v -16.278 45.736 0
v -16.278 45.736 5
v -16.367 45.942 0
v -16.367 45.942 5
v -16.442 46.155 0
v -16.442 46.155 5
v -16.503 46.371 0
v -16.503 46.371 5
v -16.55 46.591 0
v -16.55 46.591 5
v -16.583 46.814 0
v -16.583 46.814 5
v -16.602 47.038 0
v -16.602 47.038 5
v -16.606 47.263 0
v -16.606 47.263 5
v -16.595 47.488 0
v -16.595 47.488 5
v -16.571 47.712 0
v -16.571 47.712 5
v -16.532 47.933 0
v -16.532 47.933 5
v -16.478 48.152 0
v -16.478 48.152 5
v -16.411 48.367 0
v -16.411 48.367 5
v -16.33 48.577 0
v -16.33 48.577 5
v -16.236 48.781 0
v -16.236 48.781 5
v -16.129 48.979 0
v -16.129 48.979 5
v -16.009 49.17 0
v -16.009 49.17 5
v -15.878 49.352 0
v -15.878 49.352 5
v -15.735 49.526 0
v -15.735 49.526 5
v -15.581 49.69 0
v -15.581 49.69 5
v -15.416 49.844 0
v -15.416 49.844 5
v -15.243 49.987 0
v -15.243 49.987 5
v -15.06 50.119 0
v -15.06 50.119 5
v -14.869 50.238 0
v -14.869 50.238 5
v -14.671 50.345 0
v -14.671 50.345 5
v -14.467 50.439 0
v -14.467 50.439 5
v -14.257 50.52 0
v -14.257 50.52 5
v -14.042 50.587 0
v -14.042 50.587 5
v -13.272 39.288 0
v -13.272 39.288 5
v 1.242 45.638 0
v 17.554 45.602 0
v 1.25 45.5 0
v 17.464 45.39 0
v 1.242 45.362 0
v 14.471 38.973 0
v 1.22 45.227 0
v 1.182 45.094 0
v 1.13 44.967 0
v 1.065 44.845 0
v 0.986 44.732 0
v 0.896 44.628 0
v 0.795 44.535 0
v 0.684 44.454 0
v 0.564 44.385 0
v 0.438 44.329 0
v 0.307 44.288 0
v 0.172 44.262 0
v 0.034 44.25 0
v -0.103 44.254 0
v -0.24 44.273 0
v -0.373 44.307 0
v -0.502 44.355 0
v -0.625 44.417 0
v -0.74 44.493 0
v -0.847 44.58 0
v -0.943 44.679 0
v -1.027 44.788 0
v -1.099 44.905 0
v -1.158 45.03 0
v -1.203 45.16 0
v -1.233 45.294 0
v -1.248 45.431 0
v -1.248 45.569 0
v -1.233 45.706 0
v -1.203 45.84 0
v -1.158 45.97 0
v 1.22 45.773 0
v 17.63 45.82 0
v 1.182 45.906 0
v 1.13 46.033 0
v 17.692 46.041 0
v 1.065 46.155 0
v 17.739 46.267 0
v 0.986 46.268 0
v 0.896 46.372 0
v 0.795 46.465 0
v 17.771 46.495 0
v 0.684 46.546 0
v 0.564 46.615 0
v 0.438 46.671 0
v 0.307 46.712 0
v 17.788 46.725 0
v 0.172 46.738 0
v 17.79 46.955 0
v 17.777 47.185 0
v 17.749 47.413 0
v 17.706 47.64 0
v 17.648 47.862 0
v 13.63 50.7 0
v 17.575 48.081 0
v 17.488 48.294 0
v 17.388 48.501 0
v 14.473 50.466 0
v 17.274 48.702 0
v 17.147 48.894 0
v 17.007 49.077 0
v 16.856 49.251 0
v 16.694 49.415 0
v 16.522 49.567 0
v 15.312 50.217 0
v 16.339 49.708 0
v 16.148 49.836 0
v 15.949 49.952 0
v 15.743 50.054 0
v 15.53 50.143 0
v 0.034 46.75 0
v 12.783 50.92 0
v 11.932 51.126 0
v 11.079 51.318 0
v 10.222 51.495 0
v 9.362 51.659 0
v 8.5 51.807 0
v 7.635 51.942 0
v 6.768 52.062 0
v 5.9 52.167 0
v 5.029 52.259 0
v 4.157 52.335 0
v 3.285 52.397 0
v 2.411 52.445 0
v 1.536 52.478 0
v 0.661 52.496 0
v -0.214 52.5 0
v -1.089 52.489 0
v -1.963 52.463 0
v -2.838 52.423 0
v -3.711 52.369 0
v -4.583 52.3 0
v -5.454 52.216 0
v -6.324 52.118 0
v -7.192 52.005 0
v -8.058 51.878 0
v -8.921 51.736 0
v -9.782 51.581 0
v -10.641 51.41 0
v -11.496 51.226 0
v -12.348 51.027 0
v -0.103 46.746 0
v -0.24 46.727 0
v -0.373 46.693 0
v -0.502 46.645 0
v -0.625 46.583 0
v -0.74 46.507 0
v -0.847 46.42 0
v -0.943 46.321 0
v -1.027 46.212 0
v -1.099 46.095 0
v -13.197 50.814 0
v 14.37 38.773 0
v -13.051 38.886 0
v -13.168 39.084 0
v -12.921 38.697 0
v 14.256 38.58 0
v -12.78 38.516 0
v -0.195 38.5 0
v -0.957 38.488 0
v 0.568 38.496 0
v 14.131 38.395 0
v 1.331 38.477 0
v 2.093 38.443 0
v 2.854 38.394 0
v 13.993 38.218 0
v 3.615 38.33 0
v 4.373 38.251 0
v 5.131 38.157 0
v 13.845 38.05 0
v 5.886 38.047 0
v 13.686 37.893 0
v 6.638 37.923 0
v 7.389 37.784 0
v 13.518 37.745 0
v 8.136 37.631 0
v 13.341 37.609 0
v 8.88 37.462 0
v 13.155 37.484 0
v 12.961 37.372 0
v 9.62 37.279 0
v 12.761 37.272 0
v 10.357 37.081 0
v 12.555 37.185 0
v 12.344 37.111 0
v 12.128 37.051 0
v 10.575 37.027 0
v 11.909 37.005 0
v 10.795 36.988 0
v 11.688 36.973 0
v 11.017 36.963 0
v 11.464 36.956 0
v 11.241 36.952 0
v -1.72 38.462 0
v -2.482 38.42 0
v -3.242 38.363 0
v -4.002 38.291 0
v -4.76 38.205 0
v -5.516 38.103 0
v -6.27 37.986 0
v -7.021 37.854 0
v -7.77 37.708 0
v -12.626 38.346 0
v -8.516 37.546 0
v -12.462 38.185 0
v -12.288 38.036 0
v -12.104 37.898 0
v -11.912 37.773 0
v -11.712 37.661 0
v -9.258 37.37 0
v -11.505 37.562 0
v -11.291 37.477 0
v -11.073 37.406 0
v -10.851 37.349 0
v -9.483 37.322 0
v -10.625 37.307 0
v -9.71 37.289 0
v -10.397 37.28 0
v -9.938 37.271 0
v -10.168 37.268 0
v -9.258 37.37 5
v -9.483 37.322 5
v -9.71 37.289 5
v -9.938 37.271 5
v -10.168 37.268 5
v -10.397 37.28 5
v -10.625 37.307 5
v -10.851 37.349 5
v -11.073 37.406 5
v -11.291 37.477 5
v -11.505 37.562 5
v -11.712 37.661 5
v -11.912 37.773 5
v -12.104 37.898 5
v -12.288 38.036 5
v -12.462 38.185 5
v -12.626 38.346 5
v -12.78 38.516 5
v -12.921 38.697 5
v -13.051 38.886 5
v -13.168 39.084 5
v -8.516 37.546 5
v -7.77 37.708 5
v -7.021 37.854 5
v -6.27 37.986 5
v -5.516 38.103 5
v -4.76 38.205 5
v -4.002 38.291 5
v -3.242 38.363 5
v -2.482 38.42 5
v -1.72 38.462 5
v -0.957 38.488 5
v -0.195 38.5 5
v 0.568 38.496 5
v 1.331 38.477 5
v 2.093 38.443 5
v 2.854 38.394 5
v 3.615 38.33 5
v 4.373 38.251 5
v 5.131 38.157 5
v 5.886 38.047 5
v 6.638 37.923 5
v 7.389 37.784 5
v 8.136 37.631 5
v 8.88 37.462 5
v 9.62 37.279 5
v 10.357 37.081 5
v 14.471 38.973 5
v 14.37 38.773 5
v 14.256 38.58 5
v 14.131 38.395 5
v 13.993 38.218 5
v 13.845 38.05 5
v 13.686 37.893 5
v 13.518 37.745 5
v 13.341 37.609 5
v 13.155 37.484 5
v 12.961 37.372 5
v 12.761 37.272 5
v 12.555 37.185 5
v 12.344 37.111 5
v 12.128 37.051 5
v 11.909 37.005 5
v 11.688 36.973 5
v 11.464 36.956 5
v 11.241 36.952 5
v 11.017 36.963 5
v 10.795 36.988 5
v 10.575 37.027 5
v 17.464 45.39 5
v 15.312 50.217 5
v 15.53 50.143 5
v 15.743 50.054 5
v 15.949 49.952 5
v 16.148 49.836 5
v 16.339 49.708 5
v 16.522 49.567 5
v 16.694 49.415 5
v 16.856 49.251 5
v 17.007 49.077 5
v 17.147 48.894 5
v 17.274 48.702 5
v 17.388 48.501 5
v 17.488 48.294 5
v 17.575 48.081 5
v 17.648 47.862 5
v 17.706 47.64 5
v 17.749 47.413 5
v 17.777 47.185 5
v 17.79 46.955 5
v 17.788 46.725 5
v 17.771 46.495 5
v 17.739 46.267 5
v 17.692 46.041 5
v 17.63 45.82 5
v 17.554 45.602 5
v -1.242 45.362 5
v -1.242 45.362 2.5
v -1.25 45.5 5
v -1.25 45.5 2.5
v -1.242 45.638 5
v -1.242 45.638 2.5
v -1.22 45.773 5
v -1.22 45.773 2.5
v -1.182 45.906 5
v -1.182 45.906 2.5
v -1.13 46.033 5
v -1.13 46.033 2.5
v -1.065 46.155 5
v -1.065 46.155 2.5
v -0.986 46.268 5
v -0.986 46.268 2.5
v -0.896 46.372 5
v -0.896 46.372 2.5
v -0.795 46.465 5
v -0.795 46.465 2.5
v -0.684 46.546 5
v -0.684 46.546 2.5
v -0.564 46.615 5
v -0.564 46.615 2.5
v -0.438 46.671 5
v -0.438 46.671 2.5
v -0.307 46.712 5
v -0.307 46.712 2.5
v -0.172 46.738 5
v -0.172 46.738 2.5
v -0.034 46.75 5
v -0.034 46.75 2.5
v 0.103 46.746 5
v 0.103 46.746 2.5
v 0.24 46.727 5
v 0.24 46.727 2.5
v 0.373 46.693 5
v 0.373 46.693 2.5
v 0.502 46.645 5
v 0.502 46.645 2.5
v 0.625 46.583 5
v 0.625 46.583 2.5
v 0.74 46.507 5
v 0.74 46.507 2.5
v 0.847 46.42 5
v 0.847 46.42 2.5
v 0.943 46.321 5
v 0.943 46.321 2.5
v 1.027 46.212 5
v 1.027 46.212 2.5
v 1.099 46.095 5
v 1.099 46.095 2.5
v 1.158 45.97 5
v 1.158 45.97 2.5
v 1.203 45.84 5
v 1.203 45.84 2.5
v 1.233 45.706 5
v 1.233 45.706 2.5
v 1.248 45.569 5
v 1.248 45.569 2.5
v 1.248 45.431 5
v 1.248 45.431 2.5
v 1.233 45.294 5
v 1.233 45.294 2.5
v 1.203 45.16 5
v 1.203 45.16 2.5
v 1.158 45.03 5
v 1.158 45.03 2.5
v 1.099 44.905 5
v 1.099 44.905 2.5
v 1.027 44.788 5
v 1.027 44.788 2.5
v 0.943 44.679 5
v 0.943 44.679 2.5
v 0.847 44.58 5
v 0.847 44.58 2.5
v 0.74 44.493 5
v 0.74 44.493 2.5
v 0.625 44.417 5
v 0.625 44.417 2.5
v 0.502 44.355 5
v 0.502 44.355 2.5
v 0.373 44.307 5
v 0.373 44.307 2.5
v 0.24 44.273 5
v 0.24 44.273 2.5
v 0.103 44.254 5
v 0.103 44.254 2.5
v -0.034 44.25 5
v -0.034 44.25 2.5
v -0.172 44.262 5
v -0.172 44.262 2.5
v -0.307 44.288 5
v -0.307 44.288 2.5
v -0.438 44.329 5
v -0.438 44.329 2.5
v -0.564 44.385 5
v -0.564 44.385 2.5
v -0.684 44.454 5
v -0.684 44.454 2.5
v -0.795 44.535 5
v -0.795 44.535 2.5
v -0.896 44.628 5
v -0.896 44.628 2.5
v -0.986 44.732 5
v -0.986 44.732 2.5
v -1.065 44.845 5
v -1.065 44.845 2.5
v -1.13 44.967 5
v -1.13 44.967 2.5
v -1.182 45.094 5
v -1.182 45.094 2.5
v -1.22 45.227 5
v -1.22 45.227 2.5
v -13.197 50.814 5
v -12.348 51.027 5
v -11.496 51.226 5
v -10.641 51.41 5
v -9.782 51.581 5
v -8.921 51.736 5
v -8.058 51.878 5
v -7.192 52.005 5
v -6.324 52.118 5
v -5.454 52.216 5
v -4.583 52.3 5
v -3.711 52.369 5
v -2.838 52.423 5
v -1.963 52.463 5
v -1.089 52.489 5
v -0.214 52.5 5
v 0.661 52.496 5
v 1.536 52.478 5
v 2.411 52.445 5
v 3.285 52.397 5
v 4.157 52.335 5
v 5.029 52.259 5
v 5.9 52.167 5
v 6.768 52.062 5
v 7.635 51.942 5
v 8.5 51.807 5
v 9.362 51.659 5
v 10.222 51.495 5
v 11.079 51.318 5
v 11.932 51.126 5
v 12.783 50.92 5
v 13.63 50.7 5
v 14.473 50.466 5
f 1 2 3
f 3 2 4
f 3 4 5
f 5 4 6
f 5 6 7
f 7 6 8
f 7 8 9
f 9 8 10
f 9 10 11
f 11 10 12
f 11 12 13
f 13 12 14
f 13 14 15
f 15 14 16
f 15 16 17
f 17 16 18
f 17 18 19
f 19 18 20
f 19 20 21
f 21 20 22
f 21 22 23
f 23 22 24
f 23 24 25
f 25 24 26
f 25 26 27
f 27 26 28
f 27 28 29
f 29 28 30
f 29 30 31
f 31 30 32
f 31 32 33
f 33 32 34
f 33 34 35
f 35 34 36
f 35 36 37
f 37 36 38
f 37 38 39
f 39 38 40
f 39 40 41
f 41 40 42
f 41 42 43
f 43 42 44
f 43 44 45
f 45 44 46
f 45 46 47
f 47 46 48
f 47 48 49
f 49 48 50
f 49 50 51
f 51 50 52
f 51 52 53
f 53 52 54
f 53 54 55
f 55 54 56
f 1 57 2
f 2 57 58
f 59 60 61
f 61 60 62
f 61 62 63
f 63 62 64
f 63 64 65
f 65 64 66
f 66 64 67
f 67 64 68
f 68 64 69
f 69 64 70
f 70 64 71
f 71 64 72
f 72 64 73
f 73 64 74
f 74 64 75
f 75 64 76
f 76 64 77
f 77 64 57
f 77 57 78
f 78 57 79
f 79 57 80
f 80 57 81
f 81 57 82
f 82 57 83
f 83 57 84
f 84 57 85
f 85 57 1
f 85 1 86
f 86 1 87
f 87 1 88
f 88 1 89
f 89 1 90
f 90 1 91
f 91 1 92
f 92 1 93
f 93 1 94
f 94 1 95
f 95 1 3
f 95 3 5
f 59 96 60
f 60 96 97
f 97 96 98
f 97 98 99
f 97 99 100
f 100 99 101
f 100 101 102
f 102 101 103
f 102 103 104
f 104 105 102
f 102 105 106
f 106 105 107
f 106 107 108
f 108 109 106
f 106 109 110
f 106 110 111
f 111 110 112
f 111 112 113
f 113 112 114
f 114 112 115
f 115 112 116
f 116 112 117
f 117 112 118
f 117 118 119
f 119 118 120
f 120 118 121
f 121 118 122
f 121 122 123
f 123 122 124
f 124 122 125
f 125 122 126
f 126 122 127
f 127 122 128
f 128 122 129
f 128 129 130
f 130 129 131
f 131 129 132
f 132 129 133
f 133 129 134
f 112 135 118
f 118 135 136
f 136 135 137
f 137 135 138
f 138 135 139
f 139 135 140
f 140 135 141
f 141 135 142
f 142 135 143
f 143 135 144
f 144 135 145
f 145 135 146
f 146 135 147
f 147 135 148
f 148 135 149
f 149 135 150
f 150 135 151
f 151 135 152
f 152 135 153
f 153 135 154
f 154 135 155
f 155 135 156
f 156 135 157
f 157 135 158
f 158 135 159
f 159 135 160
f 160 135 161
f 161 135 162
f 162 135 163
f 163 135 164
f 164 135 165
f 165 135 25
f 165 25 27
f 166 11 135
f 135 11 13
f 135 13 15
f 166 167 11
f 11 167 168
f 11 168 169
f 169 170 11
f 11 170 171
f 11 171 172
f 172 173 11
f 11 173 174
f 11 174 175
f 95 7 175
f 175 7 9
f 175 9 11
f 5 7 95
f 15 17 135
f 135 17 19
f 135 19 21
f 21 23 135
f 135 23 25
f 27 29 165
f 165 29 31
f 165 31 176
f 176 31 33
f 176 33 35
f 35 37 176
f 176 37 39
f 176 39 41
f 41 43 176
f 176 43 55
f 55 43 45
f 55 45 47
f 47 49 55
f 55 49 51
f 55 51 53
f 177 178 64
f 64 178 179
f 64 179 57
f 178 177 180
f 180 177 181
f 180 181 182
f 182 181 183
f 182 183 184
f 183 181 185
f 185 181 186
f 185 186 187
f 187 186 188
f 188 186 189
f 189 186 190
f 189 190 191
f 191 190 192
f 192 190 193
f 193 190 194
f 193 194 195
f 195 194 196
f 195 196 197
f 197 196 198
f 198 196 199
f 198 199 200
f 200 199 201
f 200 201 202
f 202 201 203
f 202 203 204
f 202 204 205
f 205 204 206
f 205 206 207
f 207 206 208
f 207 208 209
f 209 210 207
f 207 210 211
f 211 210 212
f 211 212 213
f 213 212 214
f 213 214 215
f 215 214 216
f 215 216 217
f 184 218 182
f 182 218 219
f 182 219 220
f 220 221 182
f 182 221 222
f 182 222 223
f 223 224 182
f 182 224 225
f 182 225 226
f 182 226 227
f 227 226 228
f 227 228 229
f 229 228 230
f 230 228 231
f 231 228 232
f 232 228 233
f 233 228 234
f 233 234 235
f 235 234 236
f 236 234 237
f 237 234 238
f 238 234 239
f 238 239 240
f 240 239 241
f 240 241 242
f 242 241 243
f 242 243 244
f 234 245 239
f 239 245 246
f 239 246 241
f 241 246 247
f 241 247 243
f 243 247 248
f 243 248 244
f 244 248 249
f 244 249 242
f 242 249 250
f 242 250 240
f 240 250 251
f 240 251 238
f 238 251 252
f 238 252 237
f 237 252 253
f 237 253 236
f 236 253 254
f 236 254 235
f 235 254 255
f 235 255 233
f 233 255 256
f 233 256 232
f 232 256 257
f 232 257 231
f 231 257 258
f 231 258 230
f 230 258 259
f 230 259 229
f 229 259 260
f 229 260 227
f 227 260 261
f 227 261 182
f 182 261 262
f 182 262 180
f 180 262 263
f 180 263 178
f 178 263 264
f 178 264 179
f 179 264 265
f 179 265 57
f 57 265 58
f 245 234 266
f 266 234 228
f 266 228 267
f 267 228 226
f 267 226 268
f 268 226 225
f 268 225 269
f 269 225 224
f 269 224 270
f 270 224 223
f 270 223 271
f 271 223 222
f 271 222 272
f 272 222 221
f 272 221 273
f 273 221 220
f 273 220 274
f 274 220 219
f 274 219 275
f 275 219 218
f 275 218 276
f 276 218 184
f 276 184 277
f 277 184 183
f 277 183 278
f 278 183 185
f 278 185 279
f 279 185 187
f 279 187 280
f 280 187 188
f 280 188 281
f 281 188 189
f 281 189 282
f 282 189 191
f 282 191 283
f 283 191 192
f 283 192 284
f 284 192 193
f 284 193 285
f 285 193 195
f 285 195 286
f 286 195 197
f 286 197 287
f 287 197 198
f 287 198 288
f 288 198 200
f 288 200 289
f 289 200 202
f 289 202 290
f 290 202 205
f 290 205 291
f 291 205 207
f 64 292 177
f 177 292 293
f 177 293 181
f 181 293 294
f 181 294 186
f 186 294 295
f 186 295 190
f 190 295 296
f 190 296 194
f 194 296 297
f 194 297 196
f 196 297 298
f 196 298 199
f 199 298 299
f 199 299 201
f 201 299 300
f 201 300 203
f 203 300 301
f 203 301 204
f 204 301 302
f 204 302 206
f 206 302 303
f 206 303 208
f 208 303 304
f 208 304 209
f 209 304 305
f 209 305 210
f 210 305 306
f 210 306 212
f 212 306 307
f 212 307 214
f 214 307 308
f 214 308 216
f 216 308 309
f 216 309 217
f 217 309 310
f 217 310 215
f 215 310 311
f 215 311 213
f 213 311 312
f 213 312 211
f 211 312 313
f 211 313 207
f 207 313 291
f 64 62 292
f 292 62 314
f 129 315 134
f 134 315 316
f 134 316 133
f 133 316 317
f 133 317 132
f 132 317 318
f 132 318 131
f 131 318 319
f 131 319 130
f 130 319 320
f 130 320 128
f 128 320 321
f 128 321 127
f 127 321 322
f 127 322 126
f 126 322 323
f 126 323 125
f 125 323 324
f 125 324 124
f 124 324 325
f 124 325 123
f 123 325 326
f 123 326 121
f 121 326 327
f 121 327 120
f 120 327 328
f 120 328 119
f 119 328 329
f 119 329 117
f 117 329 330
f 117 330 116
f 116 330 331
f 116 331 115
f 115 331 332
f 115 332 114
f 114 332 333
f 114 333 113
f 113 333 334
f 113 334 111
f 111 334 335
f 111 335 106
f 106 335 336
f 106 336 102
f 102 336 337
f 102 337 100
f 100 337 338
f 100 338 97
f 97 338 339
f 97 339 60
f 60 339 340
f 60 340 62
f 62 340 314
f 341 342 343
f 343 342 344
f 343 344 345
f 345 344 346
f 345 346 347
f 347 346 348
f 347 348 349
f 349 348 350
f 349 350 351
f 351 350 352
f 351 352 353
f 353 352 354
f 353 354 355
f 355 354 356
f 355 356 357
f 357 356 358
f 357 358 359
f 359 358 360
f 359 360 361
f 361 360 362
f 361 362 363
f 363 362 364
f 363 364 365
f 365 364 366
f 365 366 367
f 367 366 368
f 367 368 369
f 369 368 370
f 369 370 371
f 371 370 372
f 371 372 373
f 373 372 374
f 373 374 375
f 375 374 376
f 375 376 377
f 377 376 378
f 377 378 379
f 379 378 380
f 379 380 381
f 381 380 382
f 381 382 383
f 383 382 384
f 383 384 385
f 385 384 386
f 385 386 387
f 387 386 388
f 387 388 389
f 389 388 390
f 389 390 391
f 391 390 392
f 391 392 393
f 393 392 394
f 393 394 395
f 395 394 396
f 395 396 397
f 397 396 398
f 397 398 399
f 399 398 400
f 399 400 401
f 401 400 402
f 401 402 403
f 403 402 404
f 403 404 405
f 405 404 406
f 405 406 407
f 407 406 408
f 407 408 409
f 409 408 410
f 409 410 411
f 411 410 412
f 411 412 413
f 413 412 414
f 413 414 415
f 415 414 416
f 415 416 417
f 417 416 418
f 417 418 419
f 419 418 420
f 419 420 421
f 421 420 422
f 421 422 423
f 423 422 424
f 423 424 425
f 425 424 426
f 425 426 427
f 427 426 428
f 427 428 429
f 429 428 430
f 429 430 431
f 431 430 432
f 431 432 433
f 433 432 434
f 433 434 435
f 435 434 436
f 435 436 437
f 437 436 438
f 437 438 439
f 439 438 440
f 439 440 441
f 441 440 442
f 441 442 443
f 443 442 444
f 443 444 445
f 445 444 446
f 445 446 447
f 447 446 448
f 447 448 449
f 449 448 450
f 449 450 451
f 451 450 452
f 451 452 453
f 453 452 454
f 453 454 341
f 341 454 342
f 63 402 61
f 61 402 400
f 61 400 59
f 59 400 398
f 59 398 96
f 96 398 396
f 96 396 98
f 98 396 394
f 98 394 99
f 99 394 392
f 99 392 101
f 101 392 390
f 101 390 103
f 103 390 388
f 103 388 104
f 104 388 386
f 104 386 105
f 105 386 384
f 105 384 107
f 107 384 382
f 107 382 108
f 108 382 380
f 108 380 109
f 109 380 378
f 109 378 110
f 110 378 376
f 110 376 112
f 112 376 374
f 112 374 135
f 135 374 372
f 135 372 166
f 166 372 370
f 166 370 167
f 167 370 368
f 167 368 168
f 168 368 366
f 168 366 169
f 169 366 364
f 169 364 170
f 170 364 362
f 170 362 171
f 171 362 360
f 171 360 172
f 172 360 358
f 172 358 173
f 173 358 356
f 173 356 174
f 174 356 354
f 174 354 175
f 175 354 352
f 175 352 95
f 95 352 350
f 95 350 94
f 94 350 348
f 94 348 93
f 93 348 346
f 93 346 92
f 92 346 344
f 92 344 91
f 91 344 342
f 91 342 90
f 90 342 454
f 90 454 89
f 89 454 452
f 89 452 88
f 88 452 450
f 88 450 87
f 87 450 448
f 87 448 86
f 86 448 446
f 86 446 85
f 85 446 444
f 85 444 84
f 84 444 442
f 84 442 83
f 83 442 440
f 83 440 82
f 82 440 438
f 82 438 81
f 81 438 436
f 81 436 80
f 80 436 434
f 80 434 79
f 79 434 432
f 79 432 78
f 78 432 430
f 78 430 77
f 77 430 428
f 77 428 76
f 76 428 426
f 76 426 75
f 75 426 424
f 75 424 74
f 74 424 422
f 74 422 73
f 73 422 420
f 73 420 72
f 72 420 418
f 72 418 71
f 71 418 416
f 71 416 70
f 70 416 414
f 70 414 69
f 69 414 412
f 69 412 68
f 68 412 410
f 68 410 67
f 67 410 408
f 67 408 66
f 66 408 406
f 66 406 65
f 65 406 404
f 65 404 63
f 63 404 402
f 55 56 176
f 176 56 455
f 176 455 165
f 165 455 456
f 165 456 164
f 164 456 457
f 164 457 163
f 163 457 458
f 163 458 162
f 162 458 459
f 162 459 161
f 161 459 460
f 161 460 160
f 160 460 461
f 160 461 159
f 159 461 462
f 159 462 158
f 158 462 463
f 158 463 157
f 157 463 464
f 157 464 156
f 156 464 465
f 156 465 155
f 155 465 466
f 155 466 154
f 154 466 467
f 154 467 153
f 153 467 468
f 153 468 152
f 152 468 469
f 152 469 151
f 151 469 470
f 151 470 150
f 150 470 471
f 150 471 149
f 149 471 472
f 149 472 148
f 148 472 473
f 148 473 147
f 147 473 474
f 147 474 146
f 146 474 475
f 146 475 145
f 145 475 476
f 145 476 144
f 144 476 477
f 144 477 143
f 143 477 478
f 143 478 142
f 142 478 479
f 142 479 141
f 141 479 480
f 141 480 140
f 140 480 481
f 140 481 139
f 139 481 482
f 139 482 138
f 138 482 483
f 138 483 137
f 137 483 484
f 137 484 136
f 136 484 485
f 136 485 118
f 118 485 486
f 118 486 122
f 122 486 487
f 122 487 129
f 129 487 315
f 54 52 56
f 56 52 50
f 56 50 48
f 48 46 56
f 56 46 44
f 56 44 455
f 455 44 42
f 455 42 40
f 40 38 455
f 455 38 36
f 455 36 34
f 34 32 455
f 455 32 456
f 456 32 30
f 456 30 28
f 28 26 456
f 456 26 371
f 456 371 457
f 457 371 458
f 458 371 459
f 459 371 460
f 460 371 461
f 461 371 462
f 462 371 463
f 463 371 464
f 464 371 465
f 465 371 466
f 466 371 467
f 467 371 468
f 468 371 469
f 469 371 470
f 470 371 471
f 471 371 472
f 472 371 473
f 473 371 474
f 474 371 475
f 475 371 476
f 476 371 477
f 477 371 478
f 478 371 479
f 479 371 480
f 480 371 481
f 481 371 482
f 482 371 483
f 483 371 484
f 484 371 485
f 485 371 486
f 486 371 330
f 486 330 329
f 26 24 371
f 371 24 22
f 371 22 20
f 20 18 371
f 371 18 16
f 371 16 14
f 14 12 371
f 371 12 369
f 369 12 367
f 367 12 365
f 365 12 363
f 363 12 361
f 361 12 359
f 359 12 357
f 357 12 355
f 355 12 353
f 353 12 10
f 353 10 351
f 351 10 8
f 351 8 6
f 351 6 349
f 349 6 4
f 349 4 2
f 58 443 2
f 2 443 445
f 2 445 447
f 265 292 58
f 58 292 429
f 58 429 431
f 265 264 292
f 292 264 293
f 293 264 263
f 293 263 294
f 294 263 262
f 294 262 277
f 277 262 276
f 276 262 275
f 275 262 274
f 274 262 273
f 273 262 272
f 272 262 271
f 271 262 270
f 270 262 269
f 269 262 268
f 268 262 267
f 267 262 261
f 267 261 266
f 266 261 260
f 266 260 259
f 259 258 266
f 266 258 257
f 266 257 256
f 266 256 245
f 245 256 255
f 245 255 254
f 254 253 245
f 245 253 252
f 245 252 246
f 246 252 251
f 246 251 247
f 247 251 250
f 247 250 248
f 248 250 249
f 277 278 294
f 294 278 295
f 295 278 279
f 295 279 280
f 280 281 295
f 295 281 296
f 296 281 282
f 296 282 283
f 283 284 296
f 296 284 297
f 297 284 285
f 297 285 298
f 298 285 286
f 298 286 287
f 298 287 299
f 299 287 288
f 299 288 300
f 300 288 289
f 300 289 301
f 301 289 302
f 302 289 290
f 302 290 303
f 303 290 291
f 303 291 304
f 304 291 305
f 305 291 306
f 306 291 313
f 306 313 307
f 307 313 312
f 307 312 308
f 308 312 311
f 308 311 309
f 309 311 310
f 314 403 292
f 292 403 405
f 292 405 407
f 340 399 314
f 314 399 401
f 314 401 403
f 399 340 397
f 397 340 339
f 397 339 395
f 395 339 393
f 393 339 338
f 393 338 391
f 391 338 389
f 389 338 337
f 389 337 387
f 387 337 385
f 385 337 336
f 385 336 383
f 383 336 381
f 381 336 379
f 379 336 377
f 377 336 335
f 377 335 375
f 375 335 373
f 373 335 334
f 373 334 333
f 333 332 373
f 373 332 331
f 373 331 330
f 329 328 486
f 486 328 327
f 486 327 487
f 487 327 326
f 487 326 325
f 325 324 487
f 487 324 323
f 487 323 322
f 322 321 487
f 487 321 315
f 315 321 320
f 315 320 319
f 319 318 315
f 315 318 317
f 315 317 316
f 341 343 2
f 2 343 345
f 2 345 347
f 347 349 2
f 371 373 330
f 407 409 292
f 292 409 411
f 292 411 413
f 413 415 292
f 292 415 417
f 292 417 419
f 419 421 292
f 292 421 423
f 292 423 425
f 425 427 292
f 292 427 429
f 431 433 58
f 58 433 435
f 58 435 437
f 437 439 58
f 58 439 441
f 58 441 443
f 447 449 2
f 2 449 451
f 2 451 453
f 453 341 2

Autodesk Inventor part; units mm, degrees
ref_plane "YZ Plane" through (0, 0, 0) normal (1, 0, 0) x (0, 1, 0)
ref_plane "XZ Plane" through (0, 0, 0) normal (0, 1, 0) x (-1, 0, 0)
ref_plane "XY Plane" through (0, 0, 0) normal (0, 0, 1) x (1, 0, 0)
sketch "Sketch1" plane through (0, 0, 0) normal (0, 0, 1) x (1, 0, 0)
  circle A0 centre (0, 0) radius 45.5
  circle A1 centre (0, 0) radius 52.5
  circle A2 centre (0, 0) radius 38.5
  line L0 (-12.0085, 36.5793) -> (-17.9561, 49.3339)
  line L1 (13.1678, 36.1782) -> (19.101, 48.902)
  line L2 (0, 0) -> (0, 83.0319)
  point P0 (0, 45.5)
  dimension "d2" = 91
  dimension "d3" = 7
  dimension "d4" = 7
  dimension "d5" = 25
  dimension "d6" = 25
extrude "Extrusion1" add sketch "Sketch1" along normal blind 5 contours L1 A2 L2 A0 | A0 L2 A1 L1 | L0 A1 L2 A0 | A0 L2 A2 L0
hole "Hole1" at (0, 45.5, 0) direction (0, 0, 1) diameter 2.5 end through all
fillet "Fillet1" radius 3.5 4 edges at (19.101, 48.902, 2.5) (13.1678, 36.1782, 2.5) (-12.0085, 36.5793, 2.5) (-17.9561, 49.3339, 2.5)
sketch "Sketch2" plane through (0, 0, 5) normal (0, 0, 1) x (1, 0, 0)
  circle A0 centre (0, 0) radius 50
  dimension "d17" = 100
equation "\"d4\" = d3"
equation "\"d6\" = d5"
properties part number "3DP_PLA_Foot"
